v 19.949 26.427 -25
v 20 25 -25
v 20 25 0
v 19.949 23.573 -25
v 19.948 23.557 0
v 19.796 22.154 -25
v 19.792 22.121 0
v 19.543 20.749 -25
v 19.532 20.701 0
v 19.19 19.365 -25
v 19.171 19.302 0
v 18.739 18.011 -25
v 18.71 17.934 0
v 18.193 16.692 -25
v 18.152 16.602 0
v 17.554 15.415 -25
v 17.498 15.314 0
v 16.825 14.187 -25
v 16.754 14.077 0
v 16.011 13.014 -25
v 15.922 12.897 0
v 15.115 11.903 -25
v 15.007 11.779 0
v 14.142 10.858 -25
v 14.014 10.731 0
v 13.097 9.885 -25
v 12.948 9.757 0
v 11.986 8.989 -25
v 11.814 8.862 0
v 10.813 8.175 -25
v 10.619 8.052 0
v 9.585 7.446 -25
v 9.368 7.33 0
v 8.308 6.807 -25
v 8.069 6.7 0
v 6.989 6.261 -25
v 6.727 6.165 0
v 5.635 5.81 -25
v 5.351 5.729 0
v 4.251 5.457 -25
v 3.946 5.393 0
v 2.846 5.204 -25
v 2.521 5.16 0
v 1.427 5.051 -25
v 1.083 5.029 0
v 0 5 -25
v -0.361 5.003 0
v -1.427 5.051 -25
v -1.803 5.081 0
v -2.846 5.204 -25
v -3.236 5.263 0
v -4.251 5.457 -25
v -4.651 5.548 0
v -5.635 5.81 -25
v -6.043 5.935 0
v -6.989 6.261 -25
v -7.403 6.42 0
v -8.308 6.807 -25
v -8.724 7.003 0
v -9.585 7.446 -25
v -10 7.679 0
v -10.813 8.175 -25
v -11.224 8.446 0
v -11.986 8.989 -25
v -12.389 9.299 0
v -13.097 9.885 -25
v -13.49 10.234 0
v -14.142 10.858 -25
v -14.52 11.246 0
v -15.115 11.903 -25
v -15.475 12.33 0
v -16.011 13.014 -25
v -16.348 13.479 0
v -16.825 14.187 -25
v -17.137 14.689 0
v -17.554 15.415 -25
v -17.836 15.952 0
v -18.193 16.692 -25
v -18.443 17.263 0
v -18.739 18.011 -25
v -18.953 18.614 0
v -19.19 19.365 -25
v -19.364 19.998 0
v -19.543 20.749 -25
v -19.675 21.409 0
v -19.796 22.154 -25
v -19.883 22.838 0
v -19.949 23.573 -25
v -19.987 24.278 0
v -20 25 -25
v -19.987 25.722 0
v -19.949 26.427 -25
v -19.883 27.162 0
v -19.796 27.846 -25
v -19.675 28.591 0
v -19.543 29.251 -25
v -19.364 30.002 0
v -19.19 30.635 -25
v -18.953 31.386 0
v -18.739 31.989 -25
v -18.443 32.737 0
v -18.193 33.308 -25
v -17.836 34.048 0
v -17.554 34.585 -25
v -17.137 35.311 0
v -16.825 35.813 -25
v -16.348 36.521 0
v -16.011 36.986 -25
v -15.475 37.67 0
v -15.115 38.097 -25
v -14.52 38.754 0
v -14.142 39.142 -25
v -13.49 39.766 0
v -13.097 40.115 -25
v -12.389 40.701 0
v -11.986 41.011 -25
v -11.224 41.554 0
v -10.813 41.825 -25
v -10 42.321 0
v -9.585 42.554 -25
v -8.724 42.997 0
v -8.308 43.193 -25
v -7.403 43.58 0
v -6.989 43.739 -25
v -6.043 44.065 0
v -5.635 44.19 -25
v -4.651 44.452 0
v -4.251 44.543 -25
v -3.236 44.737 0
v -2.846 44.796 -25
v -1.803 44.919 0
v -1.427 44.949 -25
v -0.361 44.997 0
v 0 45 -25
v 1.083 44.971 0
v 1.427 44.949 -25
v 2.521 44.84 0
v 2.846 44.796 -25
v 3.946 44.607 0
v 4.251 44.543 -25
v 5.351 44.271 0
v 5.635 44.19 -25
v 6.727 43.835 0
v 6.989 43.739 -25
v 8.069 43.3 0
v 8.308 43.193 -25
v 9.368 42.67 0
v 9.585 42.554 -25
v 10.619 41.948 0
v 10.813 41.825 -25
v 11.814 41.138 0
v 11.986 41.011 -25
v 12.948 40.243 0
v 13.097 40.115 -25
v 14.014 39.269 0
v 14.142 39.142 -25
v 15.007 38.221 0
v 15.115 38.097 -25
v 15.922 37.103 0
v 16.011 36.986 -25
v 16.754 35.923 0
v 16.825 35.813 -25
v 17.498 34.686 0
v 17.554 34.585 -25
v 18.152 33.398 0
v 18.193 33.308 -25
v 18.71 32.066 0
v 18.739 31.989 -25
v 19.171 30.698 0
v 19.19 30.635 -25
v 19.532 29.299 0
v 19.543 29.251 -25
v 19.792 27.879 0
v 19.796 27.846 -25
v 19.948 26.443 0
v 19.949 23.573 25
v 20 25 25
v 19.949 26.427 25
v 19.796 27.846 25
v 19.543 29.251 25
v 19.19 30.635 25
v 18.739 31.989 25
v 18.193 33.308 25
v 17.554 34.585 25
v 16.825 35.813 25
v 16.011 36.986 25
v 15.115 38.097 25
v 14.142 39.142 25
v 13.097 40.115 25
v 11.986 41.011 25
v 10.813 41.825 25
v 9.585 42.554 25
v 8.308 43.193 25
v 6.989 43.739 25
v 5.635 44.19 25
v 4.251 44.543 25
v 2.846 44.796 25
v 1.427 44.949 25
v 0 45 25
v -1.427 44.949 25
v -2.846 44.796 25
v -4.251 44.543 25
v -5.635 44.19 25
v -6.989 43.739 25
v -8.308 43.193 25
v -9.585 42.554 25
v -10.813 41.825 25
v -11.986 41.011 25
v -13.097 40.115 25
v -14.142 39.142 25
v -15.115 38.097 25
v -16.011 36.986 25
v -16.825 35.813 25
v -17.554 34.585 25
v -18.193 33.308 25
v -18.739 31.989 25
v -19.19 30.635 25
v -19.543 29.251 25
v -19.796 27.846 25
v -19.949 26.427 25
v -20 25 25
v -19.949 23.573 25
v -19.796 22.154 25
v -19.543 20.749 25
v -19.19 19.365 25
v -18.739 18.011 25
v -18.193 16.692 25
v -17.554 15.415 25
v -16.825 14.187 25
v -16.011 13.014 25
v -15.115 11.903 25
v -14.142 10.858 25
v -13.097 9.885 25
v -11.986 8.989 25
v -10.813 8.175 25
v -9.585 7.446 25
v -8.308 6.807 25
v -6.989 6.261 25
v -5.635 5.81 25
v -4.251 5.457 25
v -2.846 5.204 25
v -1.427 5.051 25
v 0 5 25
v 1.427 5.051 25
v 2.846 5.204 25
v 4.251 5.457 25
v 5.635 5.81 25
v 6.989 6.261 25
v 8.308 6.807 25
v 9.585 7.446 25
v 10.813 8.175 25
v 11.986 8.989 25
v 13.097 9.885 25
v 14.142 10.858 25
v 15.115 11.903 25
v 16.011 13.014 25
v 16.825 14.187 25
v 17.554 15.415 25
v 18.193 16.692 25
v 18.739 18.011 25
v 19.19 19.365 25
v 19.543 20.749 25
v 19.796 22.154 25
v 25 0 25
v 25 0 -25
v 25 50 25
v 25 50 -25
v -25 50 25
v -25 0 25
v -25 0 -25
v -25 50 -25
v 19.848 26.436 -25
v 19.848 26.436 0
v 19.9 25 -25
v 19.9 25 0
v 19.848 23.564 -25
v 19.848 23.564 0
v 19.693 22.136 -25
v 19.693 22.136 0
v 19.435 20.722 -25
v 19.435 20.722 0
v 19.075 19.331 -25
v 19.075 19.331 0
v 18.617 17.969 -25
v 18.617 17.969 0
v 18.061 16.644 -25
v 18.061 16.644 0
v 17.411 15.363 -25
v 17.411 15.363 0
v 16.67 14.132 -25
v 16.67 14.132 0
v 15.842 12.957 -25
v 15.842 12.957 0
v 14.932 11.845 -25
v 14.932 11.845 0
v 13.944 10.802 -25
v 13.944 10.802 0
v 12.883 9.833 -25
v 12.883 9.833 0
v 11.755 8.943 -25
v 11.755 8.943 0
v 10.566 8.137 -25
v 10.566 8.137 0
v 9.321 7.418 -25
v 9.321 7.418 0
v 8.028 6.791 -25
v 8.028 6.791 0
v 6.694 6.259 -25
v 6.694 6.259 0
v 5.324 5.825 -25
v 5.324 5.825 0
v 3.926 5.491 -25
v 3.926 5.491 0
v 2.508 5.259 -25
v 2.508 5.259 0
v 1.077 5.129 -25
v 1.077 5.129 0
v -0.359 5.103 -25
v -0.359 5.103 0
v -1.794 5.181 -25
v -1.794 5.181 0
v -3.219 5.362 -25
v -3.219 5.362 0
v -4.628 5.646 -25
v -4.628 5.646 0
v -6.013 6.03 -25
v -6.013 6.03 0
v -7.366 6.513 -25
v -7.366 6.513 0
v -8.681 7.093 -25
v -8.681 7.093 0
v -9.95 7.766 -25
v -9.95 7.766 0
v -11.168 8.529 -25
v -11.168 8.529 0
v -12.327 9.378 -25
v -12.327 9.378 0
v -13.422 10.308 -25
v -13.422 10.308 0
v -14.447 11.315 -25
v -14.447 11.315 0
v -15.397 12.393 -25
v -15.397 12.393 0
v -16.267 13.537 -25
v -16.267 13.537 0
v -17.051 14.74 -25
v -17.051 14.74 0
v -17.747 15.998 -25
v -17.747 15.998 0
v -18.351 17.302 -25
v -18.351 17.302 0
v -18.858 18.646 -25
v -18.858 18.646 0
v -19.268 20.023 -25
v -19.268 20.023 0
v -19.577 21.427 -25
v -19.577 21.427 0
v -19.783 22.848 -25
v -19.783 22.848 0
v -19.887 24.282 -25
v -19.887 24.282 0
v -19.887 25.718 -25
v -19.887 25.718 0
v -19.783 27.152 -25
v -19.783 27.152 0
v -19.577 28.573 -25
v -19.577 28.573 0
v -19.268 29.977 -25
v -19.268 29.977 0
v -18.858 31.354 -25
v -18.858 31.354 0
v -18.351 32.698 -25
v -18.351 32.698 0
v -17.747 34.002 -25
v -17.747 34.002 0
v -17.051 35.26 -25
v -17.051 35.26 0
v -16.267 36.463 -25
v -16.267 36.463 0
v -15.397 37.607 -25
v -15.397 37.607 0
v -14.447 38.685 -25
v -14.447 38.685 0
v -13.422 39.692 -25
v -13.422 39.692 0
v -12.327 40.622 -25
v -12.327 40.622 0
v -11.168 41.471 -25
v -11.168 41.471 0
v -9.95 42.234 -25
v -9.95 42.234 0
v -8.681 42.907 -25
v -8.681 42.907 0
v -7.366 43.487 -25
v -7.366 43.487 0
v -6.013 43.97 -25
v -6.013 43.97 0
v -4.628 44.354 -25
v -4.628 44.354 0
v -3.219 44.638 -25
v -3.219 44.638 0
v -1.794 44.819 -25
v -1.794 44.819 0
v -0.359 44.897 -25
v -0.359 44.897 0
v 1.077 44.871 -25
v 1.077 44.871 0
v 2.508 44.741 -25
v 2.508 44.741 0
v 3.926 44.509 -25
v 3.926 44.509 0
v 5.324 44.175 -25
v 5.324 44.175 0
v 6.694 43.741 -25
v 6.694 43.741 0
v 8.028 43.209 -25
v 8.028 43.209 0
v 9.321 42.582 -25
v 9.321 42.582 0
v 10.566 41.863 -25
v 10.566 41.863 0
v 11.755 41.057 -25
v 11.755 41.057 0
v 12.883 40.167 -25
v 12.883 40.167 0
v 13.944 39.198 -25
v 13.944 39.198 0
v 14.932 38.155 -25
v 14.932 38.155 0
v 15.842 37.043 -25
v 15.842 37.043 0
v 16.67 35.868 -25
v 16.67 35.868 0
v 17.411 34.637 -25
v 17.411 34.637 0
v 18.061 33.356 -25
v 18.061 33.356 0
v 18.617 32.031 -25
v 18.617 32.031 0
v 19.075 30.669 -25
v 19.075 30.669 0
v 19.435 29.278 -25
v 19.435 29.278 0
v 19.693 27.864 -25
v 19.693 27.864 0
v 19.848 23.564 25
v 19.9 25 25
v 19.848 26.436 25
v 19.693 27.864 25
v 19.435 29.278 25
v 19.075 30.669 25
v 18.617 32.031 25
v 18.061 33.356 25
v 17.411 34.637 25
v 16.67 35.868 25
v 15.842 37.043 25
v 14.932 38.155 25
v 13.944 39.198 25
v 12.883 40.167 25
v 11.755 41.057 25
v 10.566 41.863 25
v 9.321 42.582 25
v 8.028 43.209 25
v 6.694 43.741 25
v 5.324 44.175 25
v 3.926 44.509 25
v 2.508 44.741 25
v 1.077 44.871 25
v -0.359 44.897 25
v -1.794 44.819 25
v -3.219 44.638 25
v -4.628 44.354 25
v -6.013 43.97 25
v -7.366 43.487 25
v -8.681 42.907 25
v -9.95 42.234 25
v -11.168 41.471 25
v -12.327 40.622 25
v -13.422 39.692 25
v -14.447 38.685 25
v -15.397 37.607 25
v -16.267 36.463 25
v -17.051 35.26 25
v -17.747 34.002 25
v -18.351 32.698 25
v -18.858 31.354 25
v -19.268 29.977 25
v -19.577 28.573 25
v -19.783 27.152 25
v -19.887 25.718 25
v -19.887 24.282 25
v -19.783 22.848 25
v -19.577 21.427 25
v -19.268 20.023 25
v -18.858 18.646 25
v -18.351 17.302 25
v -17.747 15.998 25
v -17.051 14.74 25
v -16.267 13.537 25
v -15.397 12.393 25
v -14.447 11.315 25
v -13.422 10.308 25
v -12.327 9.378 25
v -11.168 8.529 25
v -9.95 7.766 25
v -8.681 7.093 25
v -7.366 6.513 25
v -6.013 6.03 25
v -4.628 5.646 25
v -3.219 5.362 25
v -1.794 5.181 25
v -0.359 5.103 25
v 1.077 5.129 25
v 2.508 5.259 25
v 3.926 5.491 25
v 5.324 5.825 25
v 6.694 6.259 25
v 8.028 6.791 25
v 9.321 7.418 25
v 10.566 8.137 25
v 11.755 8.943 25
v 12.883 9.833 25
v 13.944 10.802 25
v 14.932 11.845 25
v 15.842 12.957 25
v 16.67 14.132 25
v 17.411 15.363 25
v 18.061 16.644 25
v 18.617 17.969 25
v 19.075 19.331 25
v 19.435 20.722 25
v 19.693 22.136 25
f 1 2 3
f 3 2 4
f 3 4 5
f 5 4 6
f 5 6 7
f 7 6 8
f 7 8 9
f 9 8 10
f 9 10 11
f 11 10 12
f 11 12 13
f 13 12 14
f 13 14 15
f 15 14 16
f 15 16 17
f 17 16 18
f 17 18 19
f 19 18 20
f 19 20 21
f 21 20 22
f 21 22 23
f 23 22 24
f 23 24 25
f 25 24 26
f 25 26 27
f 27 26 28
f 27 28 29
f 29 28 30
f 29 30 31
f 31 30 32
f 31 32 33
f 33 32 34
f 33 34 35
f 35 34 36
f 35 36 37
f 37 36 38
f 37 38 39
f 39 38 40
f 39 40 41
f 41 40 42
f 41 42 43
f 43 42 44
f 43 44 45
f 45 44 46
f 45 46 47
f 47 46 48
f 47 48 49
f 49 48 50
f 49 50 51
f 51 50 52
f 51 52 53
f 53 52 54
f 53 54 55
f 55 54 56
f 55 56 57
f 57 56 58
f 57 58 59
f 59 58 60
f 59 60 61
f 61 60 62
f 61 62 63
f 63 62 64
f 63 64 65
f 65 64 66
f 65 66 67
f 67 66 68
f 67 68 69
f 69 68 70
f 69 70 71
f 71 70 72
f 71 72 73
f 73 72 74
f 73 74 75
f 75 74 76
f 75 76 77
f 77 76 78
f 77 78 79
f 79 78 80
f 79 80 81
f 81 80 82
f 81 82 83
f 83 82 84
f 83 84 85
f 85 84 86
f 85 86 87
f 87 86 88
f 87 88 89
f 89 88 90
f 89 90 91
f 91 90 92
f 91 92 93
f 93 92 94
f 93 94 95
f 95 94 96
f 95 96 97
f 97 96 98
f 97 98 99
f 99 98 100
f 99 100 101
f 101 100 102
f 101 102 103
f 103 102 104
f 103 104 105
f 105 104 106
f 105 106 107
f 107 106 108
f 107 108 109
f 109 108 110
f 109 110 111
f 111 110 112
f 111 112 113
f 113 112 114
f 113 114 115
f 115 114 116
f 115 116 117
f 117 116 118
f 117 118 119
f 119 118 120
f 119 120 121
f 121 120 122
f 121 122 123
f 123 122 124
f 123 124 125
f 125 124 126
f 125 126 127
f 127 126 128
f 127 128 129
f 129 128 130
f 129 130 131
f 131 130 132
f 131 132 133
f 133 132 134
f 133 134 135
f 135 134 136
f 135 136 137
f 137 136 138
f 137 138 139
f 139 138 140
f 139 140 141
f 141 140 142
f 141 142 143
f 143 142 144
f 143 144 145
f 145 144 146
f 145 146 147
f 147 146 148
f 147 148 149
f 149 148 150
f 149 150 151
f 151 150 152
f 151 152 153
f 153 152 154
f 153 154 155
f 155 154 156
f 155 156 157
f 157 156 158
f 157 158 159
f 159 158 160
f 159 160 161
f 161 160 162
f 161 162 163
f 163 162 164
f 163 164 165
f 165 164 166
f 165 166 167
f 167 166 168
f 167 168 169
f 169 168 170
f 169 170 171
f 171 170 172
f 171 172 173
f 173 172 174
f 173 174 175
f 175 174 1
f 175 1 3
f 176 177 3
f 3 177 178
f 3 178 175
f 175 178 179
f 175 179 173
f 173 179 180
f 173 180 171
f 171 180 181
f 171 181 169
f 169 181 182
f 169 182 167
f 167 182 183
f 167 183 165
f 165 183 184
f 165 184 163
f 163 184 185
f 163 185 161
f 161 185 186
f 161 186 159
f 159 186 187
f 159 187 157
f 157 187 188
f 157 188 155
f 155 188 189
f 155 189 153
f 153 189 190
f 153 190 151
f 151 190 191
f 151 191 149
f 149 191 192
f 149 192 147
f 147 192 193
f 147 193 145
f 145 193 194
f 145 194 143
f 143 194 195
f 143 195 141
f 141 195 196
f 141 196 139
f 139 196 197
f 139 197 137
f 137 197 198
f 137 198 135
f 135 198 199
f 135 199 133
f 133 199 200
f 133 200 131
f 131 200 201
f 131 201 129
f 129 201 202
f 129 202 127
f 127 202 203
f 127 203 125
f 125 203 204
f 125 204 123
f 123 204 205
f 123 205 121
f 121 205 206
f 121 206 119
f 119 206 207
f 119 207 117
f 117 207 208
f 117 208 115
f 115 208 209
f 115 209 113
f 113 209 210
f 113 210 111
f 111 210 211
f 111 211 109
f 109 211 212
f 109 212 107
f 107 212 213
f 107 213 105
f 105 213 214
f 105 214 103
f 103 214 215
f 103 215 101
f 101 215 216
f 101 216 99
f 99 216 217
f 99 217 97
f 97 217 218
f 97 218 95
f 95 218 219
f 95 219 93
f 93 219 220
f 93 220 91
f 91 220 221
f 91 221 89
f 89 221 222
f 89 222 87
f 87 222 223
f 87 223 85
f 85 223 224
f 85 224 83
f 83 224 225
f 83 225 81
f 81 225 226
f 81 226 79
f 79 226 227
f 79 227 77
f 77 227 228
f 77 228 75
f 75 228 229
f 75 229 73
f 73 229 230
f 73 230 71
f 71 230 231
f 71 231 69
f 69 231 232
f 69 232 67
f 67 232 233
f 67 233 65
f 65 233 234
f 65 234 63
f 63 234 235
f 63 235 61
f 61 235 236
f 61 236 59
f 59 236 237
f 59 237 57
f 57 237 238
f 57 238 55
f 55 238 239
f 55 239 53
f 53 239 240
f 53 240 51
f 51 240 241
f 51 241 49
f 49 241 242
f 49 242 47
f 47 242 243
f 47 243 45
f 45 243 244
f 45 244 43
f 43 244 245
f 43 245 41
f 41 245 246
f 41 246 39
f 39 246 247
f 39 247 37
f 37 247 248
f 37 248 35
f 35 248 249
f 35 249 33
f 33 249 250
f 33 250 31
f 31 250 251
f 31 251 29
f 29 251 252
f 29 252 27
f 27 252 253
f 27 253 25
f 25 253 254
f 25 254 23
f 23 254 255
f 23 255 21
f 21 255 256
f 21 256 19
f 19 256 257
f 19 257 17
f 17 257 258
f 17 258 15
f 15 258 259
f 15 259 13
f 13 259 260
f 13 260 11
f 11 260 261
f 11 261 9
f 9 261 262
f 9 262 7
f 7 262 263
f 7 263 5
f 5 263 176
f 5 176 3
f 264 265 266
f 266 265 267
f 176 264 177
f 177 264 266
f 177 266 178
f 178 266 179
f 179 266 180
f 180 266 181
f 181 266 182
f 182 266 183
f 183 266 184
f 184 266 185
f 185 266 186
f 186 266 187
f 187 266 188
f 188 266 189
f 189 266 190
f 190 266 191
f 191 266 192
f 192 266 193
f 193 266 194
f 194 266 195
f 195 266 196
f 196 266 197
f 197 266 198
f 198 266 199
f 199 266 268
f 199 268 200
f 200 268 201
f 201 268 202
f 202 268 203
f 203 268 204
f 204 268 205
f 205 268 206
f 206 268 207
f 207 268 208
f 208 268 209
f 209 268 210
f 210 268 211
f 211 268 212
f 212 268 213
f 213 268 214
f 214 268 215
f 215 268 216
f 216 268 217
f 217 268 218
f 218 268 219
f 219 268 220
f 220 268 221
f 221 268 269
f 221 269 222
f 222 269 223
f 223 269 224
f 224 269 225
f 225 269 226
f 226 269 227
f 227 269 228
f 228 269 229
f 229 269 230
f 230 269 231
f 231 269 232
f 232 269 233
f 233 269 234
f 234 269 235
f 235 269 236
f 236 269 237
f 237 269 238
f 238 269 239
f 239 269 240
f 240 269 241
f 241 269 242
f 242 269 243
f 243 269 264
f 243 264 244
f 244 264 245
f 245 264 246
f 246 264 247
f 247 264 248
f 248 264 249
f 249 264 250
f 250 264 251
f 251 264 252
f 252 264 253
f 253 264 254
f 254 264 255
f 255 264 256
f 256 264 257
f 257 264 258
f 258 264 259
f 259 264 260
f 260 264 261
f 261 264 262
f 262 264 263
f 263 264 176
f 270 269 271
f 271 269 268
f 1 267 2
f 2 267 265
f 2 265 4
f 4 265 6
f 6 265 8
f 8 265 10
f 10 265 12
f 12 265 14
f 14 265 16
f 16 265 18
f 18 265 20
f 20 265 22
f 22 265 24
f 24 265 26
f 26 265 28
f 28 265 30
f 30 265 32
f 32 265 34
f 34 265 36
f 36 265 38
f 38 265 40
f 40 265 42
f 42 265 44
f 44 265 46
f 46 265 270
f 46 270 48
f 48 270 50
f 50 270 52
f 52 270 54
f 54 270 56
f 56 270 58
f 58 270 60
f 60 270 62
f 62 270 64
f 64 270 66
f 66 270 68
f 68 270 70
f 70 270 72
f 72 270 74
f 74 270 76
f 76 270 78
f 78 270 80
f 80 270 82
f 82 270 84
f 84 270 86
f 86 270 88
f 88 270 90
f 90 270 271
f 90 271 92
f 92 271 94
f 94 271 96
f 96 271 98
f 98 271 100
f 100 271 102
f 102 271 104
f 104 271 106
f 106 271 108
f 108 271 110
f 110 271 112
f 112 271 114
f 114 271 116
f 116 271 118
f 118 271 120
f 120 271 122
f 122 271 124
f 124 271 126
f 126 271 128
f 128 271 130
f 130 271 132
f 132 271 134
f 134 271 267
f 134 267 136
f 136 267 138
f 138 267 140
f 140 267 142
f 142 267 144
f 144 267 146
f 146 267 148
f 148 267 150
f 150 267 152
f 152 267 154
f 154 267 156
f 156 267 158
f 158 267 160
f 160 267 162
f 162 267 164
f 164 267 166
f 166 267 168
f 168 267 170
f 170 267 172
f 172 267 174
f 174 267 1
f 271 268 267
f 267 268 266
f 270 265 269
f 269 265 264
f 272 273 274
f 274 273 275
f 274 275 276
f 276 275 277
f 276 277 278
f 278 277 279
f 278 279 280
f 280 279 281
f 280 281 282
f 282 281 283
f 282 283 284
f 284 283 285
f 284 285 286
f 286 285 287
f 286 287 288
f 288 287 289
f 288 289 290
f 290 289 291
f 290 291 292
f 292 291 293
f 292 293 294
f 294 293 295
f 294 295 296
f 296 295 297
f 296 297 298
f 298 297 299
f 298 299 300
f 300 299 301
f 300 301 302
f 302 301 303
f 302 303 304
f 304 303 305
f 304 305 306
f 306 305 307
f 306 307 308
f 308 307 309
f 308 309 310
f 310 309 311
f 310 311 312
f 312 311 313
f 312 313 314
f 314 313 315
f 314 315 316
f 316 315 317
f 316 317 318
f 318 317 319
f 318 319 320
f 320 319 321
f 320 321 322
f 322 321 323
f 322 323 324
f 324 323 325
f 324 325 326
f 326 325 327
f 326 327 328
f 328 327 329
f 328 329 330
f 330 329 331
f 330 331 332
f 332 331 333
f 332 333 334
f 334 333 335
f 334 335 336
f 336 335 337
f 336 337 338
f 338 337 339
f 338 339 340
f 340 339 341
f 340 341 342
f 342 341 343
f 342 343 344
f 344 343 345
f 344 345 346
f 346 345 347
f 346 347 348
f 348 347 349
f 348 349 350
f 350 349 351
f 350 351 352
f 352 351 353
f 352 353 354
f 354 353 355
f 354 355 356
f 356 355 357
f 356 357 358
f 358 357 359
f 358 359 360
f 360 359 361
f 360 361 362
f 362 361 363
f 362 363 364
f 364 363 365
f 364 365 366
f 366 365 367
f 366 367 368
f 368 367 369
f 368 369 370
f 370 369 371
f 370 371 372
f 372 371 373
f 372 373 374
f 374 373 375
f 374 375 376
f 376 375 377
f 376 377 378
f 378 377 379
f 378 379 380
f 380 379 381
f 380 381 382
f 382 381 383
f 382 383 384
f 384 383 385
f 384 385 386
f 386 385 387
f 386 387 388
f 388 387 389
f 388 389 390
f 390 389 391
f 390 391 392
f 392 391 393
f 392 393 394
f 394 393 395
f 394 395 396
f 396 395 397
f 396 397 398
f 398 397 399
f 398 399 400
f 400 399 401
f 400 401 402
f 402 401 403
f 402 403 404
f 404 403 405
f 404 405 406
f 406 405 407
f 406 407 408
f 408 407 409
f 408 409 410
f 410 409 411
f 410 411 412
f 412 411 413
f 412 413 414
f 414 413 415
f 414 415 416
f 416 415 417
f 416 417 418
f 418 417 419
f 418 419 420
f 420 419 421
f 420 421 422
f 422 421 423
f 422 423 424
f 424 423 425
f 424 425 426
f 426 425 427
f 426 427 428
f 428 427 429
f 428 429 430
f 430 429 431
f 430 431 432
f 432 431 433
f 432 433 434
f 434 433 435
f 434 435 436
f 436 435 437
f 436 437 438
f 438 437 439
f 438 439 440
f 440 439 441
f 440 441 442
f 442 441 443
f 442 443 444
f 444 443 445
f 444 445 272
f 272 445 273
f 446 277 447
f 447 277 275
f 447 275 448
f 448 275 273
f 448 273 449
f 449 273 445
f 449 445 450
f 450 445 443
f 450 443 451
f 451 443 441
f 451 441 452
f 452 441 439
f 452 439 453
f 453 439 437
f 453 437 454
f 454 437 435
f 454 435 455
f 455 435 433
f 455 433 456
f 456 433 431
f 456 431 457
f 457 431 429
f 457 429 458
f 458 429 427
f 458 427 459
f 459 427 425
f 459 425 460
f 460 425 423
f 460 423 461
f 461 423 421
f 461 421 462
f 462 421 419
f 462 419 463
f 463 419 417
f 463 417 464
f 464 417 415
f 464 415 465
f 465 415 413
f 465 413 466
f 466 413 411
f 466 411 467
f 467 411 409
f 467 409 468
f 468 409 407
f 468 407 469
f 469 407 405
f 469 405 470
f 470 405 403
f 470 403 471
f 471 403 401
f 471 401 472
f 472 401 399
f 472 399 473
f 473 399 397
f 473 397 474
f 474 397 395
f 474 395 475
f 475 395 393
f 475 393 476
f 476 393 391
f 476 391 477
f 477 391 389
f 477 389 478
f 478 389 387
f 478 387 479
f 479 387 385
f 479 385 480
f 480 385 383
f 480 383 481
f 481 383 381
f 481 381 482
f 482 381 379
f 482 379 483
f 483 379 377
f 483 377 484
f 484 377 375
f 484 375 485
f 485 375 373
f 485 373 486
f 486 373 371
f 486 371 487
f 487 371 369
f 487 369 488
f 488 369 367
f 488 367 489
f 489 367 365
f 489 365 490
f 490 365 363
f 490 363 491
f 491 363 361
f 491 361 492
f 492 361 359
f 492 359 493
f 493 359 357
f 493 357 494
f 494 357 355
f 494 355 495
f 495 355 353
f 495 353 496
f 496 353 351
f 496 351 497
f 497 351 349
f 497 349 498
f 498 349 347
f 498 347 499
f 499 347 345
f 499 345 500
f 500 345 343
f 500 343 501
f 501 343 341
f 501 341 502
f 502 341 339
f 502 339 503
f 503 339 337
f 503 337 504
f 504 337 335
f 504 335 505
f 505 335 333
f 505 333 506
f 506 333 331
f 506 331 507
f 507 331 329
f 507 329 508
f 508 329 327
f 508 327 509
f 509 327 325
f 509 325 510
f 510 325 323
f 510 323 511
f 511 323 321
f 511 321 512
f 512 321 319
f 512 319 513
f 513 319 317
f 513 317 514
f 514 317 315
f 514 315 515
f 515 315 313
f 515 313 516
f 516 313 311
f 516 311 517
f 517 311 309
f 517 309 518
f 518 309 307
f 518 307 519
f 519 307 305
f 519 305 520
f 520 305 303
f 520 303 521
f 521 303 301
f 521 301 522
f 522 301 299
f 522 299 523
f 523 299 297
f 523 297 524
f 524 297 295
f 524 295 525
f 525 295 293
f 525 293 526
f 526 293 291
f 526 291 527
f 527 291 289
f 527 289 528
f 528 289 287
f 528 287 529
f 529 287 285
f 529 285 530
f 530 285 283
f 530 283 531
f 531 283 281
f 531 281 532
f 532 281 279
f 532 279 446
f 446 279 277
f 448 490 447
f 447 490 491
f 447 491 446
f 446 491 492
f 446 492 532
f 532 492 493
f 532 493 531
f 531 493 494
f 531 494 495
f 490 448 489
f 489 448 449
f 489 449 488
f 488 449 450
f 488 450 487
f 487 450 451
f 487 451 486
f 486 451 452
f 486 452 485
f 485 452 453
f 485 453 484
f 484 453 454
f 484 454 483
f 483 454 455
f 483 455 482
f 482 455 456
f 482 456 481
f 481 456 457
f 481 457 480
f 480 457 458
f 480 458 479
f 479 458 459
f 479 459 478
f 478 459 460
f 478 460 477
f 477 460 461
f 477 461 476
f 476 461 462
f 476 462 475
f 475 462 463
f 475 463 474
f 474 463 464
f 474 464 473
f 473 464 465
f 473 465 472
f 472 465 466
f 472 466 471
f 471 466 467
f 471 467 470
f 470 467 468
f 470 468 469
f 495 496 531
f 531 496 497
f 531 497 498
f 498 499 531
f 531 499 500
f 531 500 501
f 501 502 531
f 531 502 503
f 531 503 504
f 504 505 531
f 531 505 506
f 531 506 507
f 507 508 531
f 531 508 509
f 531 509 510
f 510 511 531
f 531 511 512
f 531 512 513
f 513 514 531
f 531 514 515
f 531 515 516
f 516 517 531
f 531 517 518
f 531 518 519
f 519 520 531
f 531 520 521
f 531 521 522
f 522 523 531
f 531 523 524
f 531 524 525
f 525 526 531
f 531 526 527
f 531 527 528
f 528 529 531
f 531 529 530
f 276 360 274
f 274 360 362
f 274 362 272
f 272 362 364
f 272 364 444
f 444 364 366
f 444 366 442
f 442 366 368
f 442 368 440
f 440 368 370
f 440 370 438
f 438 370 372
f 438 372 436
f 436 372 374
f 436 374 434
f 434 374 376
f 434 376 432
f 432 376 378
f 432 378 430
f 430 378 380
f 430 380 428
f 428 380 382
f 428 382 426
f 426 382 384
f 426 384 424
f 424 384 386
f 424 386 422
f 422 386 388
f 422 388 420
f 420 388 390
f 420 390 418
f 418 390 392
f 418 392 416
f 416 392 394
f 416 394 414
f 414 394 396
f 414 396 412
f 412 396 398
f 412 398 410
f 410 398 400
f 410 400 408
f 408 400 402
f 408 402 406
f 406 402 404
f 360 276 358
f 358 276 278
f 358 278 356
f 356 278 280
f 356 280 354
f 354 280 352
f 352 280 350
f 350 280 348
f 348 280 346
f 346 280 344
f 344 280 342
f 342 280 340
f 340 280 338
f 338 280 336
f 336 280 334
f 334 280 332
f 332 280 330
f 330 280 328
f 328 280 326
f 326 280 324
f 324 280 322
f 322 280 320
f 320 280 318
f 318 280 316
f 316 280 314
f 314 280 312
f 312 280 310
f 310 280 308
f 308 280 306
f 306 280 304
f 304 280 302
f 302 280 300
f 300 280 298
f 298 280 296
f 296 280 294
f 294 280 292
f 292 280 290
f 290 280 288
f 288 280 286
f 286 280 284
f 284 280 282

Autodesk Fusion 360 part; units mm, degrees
sketch "Sketch3" plane through (0, 0, 0) normal (0, 1, 0) x (1, 0, 0)
  line L0 (25, -25) -> (-25, -25)
  line L1 (-25, -25) -> (-25, 25)
  line L2 (-25, 25) -> (25, 25)
  line L3 (25, 25) -> (25, -25)
  line L4 (25, -25) -> (-25, 25) construction
  line L5 (-25, -25) -> (25, 25) construction
  dimension "d1" = 50
  dimension "d2" = 50
extrude "Extrude1" add sketch "Sketch3" along normal blind 50 makes body 1
sketch "Sketch4" plane through (0, 0, 25) normal (0, 0, 1) x (-1, 0, 0)
  line L0 (25, 0) -> (-25, 0)
  line L1 (-25, 0) -> (-25, -50)
  line L2 (-25, -50) -> (25, -50)
  line L3 (25, -50) -> (25, 0)
  circle A0 centre (0, -25) radius 20
  dimension "d5" = 40
extrude "Extrude2" cut sketch "Sketch4" against normal blind 75 contours A0 bodies 1
sketch "Sketch5" plane through (0, 0, 25) normal (0, 0, 1) x (-1, 0, 0)
  circle A0 centre (0, -25) radius 20
  line L0 (25, 0) -> (-25, 0)
  line L1 (-25, 0) -> (-25, -50)
  line L2 (-25, -50) -> (25, -50)
  line L3 (25, -50) -> (25, 0)
  circle A1 centre (0, -25) radius 19.9
  dimension "d9" = 39.8
extrude "Extrude3" add sketch "Sketch5" against normal blind 50 separate body contours A1 makes body 2
equation "gap = 0.2 mm"
equation "d9 = 40 mm - gap"
